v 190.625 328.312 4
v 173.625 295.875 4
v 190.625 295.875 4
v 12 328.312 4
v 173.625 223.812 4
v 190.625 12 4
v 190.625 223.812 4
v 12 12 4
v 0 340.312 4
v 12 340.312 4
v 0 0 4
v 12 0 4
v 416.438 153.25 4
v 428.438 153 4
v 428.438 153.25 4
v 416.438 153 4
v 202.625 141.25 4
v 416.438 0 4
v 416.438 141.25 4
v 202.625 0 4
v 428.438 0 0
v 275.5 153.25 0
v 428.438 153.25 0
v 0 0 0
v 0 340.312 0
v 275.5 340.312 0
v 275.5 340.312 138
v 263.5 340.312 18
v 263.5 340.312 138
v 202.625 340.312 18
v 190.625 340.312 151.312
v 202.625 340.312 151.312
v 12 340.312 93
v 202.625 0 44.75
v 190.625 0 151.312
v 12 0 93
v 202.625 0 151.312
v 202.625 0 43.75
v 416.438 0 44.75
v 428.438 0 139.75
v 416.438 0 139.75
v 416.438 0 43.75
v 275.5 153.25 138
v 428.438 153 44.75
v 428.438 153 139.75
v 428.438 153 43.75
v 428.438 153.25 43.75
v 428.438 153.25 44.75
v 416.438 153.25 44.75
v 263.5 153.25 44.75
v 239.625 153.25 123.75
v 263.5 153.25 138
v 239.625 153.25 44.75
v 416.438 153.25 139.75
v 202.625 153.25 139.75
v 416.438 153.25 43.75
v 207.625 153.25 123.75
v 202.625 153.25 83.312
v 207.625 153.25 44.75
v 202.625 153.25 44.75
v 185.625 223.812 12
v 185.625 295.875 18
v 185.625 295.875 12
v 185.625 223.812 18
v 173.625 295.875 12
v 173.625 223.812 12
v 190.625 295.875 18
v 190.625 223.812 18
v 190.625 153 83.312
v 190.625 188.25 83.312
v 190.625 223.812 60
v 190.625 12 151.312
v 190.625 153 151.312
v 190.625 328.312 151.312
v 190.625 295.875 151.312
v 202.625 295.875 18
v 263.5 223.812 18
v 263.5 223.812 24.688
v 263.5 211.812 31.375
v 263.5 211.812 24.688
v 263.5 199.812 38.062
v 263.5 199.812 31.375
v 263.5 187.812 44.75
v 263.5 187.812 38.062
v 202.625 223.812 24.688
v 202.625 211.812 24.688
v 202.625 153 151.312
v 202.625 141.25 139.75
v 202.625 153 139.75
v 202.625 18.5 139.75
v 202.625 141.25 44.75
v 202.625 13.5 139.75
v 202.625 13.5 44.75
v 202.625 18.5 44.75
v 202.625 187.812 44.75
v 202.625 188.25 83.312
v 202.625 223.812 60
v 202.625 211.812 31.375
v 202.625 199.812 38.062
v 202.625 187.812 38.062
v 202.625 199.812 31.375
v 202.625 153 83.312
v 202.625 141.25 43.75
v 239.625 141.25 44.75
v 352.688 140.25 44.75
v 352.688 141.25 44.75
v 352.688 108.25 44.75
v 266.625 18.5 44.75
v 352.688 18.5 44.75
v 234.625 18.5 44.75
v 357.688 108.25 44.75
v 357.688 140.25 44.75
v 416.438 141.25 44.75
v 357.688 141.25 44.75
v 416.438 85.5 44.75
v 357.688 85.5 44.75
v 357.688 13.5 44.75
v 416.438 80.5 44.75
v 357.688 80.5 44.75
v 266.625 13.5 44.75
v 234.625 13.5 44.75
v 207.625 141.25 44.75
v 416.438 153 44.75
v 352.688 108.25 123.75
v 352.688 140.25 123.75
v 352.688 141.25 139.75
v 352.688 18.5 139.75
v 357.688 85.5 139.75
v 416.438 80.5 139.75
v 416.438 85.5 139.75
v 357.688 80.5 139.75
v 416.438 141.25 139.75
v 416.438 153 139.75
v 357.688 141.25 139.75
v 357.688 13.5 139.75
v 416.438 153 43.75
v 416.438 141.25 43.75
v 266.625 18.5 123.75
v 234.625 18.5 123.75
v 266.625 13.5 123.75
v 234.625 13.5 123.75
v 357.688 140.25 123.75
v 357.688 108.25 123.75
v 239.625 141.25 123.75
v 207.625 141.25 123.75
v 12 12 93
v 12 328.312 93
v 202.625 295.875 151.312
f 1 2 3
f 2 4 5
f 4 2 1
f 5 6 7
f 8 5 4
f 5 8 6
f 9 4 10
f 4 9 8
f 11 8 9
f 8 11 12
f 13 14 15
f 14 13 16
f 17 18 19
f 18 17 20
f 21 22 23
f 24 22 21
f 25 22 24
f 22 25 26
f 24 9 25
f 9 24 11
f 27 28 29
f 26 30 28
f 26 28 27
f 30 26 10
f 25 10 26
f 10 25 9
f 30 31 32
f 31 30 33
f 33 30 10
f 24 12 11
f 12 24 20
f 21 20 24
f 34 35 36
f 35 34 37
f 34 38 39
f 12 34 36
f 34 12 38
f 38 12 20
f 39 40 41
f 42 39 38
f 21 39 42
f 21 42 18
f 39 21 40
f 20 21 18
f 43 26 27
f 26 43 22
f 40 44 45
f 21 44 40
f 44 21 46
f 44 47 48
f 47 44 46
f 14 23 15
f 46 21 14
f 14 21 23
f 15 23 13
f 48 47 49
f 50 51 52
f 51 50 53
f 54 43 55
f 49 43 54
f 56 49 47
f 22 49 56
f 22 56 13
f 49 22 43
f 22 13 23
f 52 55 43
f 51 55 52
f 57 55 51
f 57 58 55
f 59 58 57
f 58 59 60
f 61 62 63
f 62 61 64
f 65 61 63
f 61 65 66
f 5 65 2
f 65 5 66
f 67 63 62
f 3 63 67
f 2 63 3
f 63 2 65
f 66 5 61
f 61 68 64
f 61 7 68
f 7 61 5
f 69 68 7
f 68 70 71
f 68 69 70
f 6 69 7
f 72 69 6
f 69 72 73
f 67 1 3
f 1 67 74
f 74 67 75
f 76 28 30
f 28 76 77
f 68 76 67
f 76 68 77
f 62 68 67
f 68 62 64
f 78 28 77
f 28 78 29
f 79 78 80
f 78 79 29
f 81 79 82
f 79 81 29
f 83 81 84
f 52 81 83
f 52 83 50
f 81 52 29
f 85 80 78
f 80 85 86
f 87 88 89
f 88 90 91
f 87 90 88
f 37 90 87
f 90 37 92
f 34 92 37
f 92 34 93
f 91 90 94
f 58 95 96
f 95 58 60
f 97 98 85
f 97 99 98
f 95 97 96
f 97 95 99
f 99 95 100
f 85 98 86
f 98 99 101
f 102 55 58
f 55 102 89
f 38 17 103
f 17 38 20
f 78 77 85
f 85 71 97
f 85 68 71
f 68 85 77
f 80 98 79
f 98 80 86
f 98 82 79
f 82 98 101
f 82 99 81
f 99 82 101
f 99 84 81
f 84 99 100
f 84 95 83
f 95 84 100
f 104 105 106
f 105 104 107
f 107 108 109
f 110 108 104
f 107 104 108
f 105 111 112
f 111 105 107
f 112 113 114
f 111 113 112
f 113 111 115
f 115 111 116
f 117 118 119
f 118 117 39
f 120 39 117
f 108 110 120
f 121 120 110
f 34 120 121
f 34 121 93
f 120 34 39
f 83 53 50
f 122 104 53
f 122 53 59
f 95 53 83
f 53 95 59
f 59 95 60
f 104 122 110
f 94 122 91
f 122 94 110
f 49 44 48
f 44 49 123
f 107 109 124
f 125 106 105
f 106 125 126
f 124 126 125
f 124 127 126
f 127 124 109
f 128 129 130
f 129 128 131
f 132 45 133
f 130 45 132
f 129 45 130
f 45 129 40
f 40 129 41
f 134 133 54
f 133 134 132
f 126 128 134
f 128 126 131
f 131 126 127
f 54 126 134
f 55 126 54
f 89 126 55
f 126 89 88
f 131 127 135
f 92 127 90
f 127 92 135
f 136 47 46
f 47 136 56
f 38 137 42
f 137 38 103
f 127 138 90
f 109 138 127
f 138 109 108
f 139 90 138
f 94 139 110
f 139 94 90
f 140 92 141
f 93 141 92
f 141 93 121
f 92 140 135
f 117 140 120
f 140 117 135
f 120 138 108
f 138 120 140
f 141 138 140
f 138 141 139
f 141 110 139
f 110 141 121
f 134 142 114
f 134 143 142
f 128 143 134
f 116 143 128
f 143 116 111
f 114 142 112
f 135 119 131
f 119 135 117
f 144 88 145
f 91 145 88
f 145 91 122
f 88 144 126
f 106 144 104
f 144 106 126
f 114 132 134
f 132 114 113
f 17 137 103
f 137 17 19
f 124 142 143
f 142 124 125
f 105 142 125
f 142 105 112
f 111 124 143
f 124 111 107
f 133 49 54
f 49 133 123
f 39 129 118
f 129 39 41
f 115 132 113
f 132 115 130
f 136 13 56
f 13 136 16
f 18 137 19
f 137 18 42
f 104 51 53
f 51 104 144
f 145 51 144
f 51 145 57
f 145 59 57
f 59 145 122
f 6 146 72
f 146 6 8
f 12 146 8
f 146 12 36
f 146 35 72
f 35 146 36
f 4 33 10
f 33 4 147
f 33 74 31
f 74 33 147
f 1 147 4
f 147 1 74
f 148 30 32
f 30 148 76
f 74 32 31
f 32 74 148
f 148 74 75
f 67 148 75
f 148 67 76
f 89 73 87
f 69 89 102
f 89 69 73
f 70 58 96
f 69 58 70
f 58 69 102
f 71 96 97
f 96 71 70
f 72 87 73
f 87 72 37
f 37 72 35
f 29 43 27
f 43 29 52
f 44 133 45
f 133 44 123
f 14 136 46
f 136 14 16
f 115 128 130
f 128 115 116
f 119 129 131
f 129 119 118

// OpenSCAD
// Apt Living Room
// units in inches
x_origin = 0;
y_origin = 0;
z_origin = 0;
z_slab_ext = 4;
z_floor_ext = 1;
x_lr_ext = 178.625;
y_lr_ext = 316.3125;
x_y_exter_wall = 12;
x_y_inter_wall = 5;
x_sep_wall = 12;
x_hall = 60.875;
z_lr_e_floor_to_ceil = 147.3125;
z_lr_e_wall = 147.3125;
y_lr_hall_int_min = 141;
y_lr_hall_min = y_lr_hall_int_min + x_y_exter_wall;
z_lr_w_wall = 89;
y_lr_stairs = 72.0625;
y_lr_hall_int_w_entry_wall = 32.4375;
y_lr_hall_w_entry_wall = y_lr_hall_int_w_entry_wall + x_y_exter_wall;
z_lr_floor_to_sep_top = 79.3125;
y_sep_top = 35.25;
z_lr_floor_to_sep_bottom = 56;
z_main_floor_to_sep_top = 35.5625;
y_sep_slope = 35.5625;
y_lr_hall_int_min_plus_hall = y_lr_hall_int_min + y_sep_top + y_sep_slope;
y_lr_hall_entry_wall_min = x_y_exter_wall + y_lr_hall_int_min_plus_hall + y_lr_stairs;
y_lr_n_wall_min = y_lr_ext + x_y_exter_wall;
y_lr_n_exter_wall_max = y_lr_n_wall_min + x_y_exter_wall;
z_hall_slab = 14;
z_hall_e_ceiling = 120;
y_br_ba_min = 13.5;
y_br_ba_base_min = 0;
y_br_ba_ext = 122.75;
y_ba_ext = 55.5;
x_br_ba_ext = 213.8125;
x_br_ext = 150.0625;
z_br_ba_wall_ext = 96;
x_br_door_offset = 32;
x_br_hall_door_offset = 5;
z_door_int_ext = 80;
x_y_door_int_ext = 32;

// key lines
y_main_house_max = y_lr_hall_min;
x_main_house_min = x_y_exter_wall + x_lr_ext;
x_main_house_int_min = x_y_exter_wall + x_lr_ext + x_y_exter_wall;
y_apt_max = y_lr_n_exter_wall_max;
x_apt_max = x_main_house_min + x_y_exter_wall + x_br_ba_ext + x_y_exter_wall;
y_hall = y_apt_max - y_main_house_max;
z_hall_level = z_slab_ext + z_hall_slab;
z_main_level = z_lr_floor_to_sep_top - z_main_floor_to_sep_top; // amount above lowest footing
// this is the z origin to the ceiling of the br ba
z_base_to_br_ba_ceil = z_main_level + z_br_ba_wall_ext;


stair_run = 12;
hall_stair_total_rise = (z_main_level + z_floor_ext) - z_hall_level;

// oriented such that y represents z axis so that it can be extruded for width of walls and rotated 90 along the x 
// to make it upright and positioned
lr_n_s_wall_poly_points = [
  [0, 0],
  [0, z_lr_w_wall], 
  [x_lr_ext, z_lr_e_floor_to_ceil],
  [x_lr_ext, 0]];

module slab() {
  // main slab area under lr
  x_main_slab_ext = x_lr_ext + x_y_exter_wall; //assuming slab only extends under addition exterior walls
  y_main_slab_ext = y_lr_ext + x_y_exter_wall * 2;
  cube([x_main_slab_ext, y_main_slab_ext, z_slab_ext]);
  
  // hall slab area 
  translate([x_main_house_min, y_main_house_max, 0])
    hall_base(z_slab_ext);

  // br/ba slab area
  x_br_start = x_origin + x_lr_ext + x_y_exter_wall;
  y_br_start = y_origin;
  translate([x_br_start, y_br_start, 0]) 
    br_ba_base(z_slab_ext);

}

module hall_base(z_ext) {
  x_hall_ext = x_hall + 2 * x_y_exter_wall;
  y_hall_ext = y_apt_max - y_main_house_max;
  cube([x_hall_ext, y_hall_ext, z_ext]);
}

module hall_slab() {
  translate([x_main_house_min, y_main_house_max, z_slab_ext])
  hall_base(z_hall_slab);
}

 
module lr_hall_sep_wall() {
  // This is a wall along the y axis
  // Create it via polygon in xy plane (using z values in place of x vals), extrude it in 
  // negative z direction to create polyhedron and then rotate -90 deg along x to raise 
  // make it an upright wall.
  x_start = x_origin + x_lr_ext + x_y_exter_wall;
  y_start = y_origin;
  translate([x_start, y_start, z_slab_ext])
    // since we rotated -90 along the y, the wall is shifted by it x length to the negative
    // side of y. We shift it by its x length to place it at the + side of the y axis.
    translate([x_sep_wall, 0, 0])

     // fun animation
     //rotate([0,$t*720,0,0])
     rotate([0,-90,0])
      linear_extrude(height = x_sep_wall)
        polygon([
            [0, 0],
            [z_lr_e_wall, 0], 
            [z_lr_e_wall, y_lr_hall_min],
            [z_lr_floor_to_sep_top, y_lr_hall_min],
            [z_lr_floor_to_sep_top, y_lr_hall_min + y_sep_top],
            [z_lr_floor_to_sep_bottom, y_lr_hall_min + y_sep_top + y_sep_slope],
            [0, y_lr_hall_min + y_sep_top + y_sep_slope]
        ]);

}
  
module lr_hall_sep_entry_wall() {
  // This is a wall along the y axis
  // Create it via polygon in xy plane (using z values in place of x vals), extrude it in 
  // negative z direction to create polyhedron and then rotate -90 deg along x to raise 
  // make it an upright wall.
  x_start = x_origin + x_lr_ext + x_y_exter_wall;
  y_start = y_origin + y_lr_hall_entry_wall_min;
  translate([x_start, y_start, z_slab_ext])
    cube([x_sep_wall, y_lr_hall_w_entry_wall, z_lr_e_wall]);
}

module lr_s_wall() {
  x_start = x_origin + x_y_exter_wall;
  y_start = y_origin;
  translate([x_start, y_start, z_slab_ext])
    // since we rotated -90 along the x, the wall is shifted by it y length to the negative
    // side of x. We shift it by its y length to place it at the + side of the x axis.
    translate([0, x_y_exter_wall, 0])
     //rotate([$t*360,0,0])
     rotate([90,0,0])
      linear_extrude(height = x_y_exter_wall)
        polygon(lr_n_s_wall_poly_points);
}

module lr_n_wall() {
  // same as south wall, shifted up along the y to the n end
  translate([0, y_lr_n_wall_min, 0])
    lr_s_wall();
}

module lr_w_wall() {
  y_lr_exter_wall_ext = y_lr_ext + 2 * x_y_exter_wall;
  translate([0, 0, z_slab_ext])
  cube([x_y_exter_wall, y_lr_exter_wall_ext, z_lr_w_wall]);
}

module lr_hall_stairs() {
  top_stair_run = 5;
  z_bottom_stair = 8;
  z_top_stair = 6;
  y_start = y_main_house_max + y_sep_top + y_sep_slope;
  x_start = x_main_house_min - (stair_run + top_stair_run);
  translate([x_start, y_start, z_slab_ext])
    cube([stair_run, y_lr_stairs, z_bottom_stair]);
  translate([x_start + stair_run, y_start, z_slab_ext])
    cube([top_stair_run, y_lr_stairs, z_bottom_stair + z_top_stair]);
}

module hall_stairs() {
  y_start = y_main_house_max + y_sep_top + y_sep_slope;
  x_start = x_main_house_min + x_y_exter_wall;
  num_stairs = 3;
  stair_rise = hall_stair_total_rise / (num_stairs + 1);
  for(i = [1:1:num_stairs])
    translate([x_start, y_start - (i*stair_run), z_hall_level])
    cube([x_hall, stair_run, stair_rise * i]);
  
  // remaining hall floor
  y_hall_floor_end = y_start - num_stairs*stair_run; 
  y_hall_to_stairs = y_hall_floor_end - y_main_house_max;
  translate([x_start, y_main_house_max, z_hall_level])
    cube([x_hall, y_hall_to_stairs, hall_stair_total_rise]);
}

module hall_e_wall() {
  y_start = y_main_house_max;
  x_start = x_main_house_min + x_y_exter_wall + x_hall;

  translate([x_start, y_start, z_hall_level])
    cube([x_y_exter_wall, y_hall, z_hall_e_ceiling]);
}
  
module br_ba_base(z_ext) {
  x_br_ba_base = x_br_ba_ext + x_y_exter_wall*2;
  // include the space in mudroom that lines up with the exterior of the addition (i.e. 0..y_br_ba_min)
  y_br_ba_base = y_br_ba_base_min + y_br_ba_min + x_y_inter_wall + y_br_ba_ext + x_y_exter_wall;
  cube([x_br_ba_base, y_br_ba_base, z_ext]);
}

module br_ba_floor() {
  x_br_start = x_origin + x_lr_ext + x_y_exter_wall;
  y_br_start = y_origin;
  translate([x_br_start, y_br_start, z_main_level]) 
    br_ba_base(z_floor_ext);
}

module br_ba_s_wall() {
  x_br_start = x_main_house_int_min;
  y_br_start = y_br_ba_min;
  translate([x_br_start, y_br_start, z_main_level]) 
    difference() {
      // wall
      cube([x_br_ext, x_y_inter_wall, z_br_ba_wall_ext]);
      // door
      translate([x_br_door_offset, -1, 0])
        cube([x_y_door_int_ext, x_y_inter_wall + 2, z_door_int_ext]);
    }
}

module br_e_wall() {
  x_start = x_main_house_int_min + x_br_ext;
  y_start = y_br_ba_min;
  y_wall_ext = x_y_inter_wall + y_br_ba_ext;
  y_ba_door_offset = y_wall_ext - 33;
  translate([x_start, y_start, z_main_level]) 
    difference() {
      // wall
      cube([x_y_inter_wall, y_wall_ext, z_br_ba_wall_ext]);
      // door
      translate([-1, y_ba_door_offset, z_origin])
        cube([x_y_inter_wall + 2, x_y_door_int_ext, z_door_int_ext]);
    }
}

module br_ba_e_wall() {
  // wall between main house and garage
  x_start = x_apt_max - x_y_exter_wall;
  y_start = y_origin;
  y_wall_ext = y_lr_hall_min - y_start;
  translate([x_start, y_start, z_origin]) 
    cube([x_y_exter_wall, y_wall_ext, z_base_to_br_ba_ceil]);
}

module br_ba_n_wall() {
  x_start = x_main_house_int_min;
  y_start = y_br_ba_min + x_y_inter_wall + y_br_ba_ext;
  x_wall_ext = x_br_ba_ext;
  // make this wall extend from ground up to ceiling
  translate([x_start, y_start, 0]) 
    difference() {
      // wall
      cube([x_wall_ext, x_y_exter_wall, z_base_to_br_ba_ceil]);
      // door
      translate([x_br_hall_door_offset, -1, z_main_level])
        cube([x_y_door_int_ext, x_y_exter_wall + 2, z_door_int_ext]);

    }
}

module ba_s_wall() {
  x_start = x_main_house_int_min + x_br_ext + x_y_inter_wall;
  y_start = (y_main_house_max - x_y_exter_wall) - (y_ba_ext + x_y_inter_wall);
  x_apt_int_max = x_apt_max - x_y_exter_wall;
  x_wall_ext = x_apt_int_max - x_start;
  translate([x_start, y_start, z_main_level]) 
    cube([x_wall_ext, x_y_inter_wall, z_br_ba_wall_ext]);
}

slab();
hall_slab();
lr_s_wall();
lr_n_wall();
//lr_w_wall();
lr_hall_sep_entry_wall();
lr_hall_sep_wall();
lr_hall_stairs();
hall_stairs();
hall_e_wall();
br_ba_floor();
br_ba_s_wall();
br_e_wall();
br_ba_e_wall();
br_ba_n_wall();
ba_s_wall();
